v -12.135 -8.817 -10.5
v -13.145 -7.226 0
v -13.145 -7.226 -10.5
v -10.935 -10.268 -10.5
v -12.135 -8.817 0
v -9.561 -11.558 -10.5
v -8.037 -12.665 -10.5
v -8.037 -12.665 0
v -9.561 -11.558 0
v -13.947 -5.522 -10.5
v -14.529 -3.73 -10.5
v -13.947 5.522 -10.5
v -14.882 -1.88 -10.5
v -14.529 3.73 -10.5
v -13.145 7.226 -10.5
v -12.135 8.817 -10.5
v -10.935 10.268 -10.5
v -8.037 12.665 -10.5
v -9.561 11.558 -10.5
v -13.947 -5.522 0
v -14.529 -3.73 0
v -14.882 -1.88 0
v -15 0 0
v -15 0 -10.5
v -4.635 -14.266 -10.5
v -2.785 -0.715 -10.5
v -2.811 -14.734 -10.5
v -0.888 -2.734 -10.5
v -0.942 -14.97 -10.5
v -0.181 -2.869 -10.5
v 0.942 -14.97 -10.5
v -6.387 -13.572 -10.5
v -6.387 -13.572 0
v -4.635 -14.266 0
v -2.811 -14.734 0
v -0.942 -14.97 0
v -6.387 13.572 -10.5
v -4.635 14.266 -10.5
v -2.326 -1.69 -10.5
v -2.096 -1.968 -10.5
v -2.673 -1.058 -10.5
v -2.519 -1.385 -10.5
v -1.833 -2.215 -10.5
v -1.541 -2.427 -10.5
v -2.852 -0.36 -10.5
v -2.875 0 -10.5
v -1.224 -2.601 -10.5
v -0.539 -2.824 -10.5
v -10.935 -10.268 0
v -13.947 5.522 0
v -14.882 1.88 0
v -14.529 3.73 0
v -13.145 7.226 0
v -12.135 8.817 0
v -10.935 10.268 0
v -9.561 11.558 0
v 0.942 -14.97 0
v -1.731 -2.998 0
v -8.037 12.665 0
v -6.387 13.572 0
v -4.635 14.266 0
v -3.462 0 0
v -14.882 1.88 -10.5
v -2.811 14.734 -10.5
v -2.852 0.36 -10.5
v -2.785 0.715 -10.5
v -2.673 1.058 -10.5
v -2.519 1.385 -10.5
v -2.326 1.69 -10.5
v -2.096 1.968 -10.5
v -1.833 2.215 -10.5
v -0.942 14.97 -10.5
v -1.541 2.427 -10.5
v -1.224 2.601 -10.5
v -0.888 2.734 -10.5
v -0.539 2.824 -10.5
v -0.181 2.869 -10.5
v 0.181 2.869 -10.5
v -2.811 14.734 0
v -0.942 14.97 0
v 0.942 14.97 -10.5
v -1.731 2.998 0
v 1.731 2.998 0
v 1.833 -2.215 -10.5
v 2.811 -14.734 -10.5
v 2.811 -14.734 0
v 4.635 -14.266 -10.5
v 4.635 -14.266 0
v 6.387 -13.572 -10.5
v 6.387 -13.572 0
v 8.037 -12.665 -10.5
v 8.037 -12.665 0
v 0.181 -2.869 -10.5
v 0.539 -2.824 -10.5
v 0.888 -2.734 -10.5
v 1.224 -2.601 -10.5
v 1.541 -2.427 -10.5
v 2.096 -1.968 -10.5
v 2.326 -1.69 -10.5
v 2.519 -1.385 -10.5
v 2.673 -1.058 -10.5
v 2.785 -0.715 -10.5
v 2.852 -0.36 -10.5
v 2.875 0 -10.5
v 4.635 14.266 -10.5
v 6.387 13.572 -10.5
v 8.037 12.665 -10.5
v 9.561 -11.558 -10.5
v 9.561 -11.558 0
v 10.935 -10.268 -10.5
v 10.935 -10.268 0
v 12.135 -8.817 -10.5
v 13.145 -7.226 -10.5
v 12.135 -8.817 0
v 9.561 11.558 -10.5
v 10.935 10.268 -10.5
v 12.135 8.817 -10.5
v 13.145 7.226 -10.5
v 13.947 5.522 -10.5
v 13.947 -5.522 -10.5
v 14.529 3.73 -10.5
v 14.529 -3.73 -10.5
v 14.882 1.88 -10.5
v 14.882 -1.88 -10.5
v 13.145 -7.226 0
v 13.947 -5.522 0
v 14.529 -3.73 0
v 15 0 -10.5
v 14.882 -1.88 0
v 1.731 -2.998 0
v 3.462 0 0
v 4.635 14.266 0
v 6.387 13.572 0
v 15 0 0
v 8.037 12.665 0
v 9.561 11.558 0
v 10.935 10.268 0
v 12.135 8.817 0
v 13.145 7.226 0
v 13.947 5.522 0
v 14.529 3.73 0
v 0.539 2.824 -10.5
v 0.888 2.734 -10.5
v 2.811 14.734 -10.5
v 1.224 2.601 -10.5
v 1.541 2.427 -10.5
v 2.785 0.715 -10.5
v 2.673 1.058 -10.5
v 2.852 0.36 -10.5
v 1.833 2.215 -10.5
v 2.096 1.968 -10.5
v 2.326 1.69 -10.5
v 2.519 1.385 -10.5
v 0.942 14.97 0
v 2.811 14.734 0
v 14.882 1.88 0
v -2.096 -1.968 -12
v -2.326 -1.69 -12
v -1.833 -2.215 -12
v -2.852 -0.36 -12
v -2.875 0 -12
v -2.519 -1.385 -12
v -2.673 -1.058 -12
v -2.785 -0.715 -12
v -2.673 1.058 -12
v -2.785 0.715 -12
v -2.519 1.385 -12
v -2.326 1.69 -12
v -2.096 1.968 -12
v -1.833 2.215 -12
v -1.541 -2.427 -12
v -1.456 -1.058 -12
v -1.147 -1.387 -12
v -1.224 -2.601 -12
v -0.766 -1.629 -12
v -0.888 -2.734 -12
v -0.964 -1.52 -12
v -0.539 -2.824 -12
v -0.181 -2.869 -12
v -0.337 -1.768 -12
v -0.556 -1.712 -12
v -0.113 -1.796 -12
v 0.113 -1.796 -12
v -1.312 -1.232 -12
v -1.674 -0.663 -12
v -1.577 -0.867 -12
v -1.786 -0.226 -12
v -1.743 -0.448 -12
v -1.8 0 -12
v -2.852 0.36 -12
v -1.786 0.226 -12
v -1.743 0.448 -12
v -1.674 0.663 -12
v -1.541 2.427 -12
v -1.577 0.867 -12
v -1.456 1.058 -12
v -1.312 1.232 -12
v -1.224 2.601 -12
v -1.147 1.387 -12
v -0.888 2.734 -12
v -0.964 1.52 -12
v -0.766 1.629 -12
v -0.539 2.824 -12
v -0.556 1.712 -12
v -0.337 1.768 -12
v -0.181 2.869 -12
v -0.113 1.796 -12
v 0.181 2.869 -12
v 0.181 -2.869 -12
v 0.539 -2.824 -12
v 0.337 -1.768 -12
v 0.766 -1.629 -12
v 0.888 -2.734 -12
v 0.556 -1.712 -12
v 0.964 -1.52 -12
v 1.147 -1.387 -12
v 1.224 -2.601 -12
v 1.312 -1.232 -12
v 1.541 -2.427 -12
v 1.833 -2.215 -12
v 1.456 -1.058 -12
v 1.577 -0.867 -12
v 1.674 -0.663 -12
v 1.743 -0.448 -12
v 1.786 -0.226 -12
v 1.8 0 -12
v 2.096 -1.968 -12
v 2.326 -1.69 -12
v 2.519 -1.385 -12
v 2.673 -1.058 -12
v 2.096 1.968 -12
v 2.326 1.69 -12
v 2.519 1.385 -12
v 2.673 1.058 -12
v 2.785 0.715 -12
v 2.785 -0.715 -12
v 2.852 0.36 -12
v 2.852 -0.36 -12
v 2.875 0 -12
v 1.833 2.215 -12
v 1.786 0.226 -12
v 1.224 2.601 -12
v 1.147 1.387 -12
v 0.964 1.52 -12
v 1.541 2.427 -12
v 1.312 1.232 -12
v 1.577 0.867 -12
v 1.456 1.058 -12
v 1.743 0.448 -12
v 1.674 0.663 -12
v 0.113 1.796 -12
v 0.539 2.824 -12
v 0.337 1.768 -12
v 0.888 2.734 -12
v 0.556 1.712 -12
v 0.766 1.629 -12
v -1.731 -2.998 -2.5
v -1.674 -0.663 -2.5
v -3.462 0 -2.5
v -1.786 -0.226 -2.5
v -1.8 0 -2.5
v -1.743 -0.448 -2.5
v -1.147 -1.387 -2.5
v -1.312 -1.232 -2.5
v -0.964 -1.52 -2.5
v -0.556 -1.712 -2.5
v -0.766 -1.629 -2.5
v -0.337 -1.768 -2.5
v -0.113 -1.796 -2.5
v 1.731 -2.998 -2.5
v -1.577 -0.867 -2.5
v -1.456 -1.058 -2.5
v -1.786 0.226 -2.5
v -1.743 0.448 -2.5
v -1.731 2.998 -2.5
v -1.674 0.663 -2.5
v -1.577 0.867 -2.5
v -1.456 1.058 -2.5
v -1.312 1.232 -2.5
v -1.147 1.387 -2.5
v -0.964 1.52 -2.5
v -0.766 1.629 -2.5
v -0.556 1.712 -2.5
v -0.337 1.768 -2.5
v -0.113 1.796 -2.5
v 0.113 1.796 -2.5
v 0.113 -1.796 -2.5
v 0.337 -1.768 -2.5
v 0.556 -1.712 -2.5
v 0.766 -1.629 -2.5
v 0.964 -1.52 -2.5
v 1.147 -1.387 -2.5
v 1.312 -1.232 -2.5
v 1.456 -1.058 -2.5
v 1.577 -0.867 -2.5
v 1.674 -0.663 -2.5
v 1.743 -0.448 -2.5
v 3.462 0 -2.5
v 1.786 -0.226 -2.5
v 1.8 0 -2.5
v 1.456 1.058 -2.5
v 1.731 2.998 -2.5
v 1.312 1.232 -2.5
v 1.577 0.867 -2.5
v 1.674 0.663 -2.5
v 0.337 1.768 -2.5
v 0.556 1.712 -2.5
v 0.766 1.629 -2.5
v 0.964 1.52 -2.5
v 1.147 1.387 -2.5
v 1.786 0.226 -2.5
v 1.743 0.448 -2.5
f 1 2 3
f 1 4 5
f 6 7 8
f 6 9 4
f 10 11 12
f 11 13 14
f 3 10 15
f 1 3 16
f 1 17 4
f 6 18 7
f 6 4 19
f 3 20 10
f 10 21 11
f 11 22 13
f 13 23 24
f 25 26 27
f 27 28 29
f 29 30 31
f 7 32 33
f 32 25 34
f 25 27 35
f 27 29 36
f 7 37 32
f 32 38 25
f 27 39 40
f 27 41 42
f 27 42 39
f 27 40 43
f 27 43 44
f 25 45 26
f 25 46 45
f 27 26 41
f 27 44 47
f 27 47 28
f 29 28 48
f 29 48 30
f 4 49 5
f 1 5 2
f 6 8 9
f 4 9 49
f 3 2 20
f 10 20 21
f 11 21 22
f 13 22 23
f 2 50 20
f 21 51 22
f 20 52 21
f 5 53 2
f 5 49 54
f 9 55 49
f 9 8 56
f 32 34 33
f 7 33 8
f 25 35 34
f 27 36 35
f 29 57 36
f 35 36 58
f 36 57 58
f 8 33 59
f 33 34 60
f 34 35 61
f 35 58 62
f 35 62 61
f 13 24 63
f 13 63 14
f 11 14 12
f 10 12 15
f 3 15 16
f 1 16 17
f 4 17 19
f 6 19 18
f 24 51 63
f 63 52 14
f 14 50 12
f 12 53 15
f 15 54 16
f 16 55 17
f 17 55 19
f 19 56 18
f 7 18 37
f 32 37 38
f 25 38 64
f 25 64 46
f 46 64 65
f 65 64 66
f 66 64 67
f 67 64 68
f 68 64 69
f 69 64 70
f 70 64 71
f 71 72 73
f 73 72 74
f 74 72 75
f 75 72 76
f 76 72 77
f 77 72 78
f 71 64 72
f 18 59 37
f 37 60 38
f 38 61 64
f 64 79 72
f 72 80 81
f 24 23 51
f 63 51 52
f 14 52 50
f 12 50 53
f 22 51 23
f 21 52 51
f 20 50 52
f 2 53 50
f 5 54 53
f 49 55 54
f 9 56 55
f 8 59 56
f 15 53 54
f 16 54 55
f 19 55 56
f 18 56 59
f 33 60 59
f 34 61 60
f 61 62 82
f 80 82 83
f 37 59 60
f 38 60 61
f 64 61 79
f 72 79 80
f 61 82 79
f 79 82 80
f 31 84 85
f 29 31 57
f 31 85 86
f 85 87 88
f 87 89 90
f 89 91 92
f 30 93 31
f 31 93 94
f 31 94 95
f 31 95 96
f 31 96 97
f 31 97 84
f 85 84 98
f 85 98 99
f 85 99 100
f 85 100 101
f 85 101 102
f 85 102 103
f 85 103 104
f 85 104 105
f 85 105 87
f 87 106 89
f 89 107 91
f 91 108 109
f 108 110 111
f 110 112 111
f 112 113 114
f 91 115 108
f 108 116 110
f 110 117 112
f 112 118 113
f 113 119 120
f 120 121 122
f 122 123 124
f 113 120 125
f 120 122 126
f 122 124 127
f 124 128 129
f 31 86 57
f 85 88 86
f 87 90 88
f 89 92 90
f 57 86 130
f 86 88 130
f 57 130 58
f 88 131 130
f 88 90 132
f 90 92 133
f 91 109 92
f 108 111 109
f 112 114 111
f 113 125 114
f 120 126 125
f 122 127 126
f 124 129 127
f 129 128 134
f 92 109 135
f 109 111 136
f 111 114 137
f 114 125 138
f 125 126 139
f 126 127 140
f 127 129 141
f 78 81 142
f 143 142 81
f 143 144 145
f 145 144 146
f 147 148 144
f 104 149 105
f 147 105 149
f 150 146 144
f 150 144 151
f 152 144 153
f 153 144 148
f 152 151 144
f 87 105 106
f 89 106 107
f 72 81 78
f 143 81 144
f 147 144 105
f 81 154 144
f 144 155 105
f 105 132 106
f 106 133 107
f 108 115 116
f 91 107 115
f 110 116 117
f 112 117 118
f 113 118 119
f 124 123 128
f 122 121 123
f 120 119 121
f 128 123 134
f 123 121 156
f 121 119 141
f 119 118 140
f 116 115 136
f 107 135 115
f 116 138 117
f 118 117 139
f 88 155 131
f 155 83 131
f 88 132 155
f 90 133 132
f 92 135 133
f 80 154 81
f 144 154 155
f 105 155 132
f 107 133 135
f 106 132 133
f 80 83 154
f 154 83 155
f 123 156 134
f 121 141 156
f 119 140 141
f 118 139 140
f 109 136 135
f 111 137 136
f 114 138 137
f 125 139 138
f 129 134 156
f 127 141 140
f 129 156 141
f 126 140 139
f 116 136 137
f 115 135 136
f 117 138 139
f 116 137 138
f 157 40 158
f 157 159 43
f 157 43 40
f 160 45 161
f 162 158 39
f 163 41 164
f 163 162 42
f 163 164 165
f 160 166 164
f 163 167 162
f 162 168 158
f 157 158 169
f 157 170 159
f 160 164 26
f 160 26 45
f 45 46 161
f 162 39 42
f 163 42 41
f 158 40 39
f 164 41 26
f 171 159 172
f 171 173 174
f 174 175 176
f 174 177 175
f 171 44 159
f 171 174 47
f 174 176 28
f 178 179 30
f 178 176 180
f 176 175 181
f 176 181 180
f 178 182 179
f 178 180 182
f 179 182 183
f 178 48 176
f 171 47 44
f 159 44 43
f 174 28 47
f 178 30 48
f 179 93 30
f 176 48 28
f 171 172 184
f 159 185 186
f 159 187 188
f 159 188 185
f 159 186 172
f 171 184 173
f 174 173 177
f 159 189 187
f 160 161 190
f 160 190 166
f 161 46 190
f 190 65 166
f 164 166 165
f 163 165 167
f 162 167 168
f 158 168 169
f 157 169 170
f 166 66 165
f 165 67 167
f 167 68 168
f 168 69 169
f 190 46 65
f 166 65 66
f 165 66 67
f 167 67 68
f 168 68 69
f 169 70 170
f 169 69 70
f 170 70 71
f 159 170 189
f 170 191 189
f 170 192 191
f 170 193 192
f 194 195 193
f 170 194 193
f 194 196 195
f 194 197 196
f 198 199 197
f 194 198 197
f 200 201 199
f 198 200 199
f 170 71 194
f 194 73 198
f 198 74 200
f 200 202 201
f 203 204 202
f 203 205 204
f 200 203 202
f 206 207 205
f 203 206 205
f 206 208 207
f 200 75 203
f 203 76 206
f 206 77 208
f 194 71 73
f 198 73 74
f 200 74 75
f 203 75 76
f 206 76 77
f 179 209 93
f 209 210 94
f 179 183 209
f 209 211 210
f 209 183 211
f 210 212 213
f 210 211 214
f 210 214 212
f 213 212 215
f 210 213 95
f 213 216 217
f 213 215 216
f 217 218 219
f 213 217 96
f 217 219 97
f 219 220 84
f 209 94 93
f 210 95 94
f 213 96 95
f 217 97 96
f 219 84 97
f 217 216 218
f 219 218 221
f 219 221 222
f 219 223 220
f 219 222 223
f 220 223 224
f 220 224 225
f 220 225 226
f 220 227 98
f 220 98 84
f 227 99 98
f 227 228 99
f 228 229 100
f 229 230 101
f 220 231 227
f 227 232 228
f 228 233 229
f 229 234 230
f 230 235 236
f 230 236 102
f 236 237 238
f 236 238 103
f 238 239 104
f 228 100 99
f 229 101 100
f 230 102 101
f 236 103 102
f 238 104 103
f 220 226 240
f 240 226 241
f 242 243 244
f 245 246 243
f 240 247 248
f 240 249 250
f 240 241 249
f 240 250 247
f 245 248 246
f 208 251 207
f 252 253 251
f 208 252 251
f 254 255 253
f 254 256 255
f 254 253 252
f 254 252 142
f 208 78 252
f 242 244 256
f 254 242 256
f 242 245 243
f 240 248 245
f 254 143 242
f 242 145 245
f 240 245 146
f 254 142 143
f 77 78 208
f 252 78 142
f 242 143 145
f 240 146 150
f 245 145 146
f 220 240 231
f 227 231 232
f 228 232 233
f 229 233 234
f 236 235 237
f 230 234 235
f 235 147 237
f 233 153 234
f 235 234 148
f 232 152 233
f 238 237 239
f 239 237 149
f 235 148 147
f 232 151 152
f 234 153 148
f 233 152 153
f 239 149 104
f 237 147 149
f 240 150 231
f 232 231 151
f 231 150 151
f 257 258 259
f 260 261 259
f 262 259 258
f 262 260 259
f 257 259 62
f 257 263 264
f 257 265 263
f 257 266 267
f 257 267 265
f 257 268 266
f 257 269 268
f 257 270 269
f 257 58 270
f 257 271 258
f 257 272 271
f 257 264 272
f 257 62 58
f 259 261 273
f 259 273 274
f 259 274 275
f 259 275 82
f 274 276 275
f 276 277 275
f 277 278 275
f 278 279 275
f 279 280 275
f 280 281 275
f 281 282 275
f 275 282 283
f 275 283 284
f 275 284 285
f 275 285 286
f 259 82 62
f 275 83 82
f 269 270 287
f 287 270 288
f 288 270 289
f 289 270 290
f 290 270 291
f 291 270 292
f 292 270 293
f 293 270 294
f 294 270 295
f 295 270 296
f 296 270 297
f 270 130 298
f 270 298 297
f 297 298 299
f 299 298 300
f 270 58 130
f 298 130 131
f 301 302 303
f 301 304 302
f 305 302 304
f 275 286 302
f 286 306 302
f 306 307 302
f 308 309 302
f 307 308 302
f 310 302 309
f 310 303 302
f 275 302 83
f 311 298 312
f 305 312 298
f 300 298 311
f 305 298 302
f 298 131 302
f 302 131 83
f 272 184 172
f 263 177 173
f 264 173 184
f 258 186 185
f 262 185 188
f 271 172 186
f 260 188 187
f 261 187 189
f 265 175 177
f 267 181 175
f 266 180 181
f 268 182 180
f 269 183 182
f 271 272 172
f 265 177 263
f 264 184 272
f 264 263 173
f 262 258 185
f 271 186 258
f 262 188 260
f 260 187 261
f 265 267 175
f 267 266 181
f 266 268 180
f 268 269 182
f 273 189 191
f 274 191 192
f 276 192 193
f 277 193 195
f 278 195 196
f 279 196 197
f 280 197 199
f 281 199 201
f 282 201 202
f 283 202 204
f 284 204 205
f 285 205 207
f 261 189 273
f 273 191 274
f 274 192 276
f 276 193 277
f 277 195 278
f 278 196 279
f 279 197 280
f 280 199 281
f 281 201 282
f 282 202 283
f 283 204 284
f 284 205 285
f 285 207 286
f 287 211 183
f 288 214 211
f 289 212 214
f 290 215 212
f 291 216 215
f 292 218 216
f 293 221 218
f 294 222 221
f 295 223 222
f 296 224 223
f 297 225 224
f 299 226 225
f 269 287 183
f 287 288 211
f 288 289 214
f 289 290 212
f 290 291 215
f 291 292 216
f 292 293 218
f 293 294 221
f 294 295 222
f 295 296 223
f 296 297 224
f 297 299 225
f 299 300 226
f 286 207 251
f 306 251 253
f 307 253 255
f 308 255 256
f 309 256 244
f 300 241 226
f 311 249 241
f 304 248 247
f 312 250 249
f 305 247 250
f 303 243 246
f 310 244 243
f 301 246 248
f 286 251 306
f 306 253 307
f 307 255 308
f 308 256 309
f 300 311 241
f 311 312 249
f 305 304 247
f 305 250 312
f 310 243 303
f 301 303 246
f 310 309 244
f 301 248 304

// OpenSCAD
$fn = 50;

difference() {
	union() {
		translate(v = [0, 0, -10.5]) {
			cylinder(h = 10.5, r = 15.0);
		}
		#translate(v = [0, 0, -12.0]) {
			cylinder(h = 12, r = 2.875);
		}
	}
	union() {
		translate(v = [0, 0, 0]) {
			rotate(a = [0, 0, 0]) {
				difference() {
					union() {
						translate(v = [0, 0, -2.5]) {
							linear_extrude(height = 2.5) {
								polygon(points = [[3.4619999999999997, 0.0], [1.7310000000000003, 2.9981799479017264], [-1.7309999999999992, 2.9981799479017264], [-3.4619999999999997, 4.2397272186481365e-16], [-1.7310000000000014, -2.998179947901726], [1.7309999999999977, -2.9981799479017277]]);
							}
						}
					}
					union();
				}
			}
		}
		#translate(v = [0, 0, -100.0]) {
			cylinder(h = 200, r = 1.8);
		}
	}
}
